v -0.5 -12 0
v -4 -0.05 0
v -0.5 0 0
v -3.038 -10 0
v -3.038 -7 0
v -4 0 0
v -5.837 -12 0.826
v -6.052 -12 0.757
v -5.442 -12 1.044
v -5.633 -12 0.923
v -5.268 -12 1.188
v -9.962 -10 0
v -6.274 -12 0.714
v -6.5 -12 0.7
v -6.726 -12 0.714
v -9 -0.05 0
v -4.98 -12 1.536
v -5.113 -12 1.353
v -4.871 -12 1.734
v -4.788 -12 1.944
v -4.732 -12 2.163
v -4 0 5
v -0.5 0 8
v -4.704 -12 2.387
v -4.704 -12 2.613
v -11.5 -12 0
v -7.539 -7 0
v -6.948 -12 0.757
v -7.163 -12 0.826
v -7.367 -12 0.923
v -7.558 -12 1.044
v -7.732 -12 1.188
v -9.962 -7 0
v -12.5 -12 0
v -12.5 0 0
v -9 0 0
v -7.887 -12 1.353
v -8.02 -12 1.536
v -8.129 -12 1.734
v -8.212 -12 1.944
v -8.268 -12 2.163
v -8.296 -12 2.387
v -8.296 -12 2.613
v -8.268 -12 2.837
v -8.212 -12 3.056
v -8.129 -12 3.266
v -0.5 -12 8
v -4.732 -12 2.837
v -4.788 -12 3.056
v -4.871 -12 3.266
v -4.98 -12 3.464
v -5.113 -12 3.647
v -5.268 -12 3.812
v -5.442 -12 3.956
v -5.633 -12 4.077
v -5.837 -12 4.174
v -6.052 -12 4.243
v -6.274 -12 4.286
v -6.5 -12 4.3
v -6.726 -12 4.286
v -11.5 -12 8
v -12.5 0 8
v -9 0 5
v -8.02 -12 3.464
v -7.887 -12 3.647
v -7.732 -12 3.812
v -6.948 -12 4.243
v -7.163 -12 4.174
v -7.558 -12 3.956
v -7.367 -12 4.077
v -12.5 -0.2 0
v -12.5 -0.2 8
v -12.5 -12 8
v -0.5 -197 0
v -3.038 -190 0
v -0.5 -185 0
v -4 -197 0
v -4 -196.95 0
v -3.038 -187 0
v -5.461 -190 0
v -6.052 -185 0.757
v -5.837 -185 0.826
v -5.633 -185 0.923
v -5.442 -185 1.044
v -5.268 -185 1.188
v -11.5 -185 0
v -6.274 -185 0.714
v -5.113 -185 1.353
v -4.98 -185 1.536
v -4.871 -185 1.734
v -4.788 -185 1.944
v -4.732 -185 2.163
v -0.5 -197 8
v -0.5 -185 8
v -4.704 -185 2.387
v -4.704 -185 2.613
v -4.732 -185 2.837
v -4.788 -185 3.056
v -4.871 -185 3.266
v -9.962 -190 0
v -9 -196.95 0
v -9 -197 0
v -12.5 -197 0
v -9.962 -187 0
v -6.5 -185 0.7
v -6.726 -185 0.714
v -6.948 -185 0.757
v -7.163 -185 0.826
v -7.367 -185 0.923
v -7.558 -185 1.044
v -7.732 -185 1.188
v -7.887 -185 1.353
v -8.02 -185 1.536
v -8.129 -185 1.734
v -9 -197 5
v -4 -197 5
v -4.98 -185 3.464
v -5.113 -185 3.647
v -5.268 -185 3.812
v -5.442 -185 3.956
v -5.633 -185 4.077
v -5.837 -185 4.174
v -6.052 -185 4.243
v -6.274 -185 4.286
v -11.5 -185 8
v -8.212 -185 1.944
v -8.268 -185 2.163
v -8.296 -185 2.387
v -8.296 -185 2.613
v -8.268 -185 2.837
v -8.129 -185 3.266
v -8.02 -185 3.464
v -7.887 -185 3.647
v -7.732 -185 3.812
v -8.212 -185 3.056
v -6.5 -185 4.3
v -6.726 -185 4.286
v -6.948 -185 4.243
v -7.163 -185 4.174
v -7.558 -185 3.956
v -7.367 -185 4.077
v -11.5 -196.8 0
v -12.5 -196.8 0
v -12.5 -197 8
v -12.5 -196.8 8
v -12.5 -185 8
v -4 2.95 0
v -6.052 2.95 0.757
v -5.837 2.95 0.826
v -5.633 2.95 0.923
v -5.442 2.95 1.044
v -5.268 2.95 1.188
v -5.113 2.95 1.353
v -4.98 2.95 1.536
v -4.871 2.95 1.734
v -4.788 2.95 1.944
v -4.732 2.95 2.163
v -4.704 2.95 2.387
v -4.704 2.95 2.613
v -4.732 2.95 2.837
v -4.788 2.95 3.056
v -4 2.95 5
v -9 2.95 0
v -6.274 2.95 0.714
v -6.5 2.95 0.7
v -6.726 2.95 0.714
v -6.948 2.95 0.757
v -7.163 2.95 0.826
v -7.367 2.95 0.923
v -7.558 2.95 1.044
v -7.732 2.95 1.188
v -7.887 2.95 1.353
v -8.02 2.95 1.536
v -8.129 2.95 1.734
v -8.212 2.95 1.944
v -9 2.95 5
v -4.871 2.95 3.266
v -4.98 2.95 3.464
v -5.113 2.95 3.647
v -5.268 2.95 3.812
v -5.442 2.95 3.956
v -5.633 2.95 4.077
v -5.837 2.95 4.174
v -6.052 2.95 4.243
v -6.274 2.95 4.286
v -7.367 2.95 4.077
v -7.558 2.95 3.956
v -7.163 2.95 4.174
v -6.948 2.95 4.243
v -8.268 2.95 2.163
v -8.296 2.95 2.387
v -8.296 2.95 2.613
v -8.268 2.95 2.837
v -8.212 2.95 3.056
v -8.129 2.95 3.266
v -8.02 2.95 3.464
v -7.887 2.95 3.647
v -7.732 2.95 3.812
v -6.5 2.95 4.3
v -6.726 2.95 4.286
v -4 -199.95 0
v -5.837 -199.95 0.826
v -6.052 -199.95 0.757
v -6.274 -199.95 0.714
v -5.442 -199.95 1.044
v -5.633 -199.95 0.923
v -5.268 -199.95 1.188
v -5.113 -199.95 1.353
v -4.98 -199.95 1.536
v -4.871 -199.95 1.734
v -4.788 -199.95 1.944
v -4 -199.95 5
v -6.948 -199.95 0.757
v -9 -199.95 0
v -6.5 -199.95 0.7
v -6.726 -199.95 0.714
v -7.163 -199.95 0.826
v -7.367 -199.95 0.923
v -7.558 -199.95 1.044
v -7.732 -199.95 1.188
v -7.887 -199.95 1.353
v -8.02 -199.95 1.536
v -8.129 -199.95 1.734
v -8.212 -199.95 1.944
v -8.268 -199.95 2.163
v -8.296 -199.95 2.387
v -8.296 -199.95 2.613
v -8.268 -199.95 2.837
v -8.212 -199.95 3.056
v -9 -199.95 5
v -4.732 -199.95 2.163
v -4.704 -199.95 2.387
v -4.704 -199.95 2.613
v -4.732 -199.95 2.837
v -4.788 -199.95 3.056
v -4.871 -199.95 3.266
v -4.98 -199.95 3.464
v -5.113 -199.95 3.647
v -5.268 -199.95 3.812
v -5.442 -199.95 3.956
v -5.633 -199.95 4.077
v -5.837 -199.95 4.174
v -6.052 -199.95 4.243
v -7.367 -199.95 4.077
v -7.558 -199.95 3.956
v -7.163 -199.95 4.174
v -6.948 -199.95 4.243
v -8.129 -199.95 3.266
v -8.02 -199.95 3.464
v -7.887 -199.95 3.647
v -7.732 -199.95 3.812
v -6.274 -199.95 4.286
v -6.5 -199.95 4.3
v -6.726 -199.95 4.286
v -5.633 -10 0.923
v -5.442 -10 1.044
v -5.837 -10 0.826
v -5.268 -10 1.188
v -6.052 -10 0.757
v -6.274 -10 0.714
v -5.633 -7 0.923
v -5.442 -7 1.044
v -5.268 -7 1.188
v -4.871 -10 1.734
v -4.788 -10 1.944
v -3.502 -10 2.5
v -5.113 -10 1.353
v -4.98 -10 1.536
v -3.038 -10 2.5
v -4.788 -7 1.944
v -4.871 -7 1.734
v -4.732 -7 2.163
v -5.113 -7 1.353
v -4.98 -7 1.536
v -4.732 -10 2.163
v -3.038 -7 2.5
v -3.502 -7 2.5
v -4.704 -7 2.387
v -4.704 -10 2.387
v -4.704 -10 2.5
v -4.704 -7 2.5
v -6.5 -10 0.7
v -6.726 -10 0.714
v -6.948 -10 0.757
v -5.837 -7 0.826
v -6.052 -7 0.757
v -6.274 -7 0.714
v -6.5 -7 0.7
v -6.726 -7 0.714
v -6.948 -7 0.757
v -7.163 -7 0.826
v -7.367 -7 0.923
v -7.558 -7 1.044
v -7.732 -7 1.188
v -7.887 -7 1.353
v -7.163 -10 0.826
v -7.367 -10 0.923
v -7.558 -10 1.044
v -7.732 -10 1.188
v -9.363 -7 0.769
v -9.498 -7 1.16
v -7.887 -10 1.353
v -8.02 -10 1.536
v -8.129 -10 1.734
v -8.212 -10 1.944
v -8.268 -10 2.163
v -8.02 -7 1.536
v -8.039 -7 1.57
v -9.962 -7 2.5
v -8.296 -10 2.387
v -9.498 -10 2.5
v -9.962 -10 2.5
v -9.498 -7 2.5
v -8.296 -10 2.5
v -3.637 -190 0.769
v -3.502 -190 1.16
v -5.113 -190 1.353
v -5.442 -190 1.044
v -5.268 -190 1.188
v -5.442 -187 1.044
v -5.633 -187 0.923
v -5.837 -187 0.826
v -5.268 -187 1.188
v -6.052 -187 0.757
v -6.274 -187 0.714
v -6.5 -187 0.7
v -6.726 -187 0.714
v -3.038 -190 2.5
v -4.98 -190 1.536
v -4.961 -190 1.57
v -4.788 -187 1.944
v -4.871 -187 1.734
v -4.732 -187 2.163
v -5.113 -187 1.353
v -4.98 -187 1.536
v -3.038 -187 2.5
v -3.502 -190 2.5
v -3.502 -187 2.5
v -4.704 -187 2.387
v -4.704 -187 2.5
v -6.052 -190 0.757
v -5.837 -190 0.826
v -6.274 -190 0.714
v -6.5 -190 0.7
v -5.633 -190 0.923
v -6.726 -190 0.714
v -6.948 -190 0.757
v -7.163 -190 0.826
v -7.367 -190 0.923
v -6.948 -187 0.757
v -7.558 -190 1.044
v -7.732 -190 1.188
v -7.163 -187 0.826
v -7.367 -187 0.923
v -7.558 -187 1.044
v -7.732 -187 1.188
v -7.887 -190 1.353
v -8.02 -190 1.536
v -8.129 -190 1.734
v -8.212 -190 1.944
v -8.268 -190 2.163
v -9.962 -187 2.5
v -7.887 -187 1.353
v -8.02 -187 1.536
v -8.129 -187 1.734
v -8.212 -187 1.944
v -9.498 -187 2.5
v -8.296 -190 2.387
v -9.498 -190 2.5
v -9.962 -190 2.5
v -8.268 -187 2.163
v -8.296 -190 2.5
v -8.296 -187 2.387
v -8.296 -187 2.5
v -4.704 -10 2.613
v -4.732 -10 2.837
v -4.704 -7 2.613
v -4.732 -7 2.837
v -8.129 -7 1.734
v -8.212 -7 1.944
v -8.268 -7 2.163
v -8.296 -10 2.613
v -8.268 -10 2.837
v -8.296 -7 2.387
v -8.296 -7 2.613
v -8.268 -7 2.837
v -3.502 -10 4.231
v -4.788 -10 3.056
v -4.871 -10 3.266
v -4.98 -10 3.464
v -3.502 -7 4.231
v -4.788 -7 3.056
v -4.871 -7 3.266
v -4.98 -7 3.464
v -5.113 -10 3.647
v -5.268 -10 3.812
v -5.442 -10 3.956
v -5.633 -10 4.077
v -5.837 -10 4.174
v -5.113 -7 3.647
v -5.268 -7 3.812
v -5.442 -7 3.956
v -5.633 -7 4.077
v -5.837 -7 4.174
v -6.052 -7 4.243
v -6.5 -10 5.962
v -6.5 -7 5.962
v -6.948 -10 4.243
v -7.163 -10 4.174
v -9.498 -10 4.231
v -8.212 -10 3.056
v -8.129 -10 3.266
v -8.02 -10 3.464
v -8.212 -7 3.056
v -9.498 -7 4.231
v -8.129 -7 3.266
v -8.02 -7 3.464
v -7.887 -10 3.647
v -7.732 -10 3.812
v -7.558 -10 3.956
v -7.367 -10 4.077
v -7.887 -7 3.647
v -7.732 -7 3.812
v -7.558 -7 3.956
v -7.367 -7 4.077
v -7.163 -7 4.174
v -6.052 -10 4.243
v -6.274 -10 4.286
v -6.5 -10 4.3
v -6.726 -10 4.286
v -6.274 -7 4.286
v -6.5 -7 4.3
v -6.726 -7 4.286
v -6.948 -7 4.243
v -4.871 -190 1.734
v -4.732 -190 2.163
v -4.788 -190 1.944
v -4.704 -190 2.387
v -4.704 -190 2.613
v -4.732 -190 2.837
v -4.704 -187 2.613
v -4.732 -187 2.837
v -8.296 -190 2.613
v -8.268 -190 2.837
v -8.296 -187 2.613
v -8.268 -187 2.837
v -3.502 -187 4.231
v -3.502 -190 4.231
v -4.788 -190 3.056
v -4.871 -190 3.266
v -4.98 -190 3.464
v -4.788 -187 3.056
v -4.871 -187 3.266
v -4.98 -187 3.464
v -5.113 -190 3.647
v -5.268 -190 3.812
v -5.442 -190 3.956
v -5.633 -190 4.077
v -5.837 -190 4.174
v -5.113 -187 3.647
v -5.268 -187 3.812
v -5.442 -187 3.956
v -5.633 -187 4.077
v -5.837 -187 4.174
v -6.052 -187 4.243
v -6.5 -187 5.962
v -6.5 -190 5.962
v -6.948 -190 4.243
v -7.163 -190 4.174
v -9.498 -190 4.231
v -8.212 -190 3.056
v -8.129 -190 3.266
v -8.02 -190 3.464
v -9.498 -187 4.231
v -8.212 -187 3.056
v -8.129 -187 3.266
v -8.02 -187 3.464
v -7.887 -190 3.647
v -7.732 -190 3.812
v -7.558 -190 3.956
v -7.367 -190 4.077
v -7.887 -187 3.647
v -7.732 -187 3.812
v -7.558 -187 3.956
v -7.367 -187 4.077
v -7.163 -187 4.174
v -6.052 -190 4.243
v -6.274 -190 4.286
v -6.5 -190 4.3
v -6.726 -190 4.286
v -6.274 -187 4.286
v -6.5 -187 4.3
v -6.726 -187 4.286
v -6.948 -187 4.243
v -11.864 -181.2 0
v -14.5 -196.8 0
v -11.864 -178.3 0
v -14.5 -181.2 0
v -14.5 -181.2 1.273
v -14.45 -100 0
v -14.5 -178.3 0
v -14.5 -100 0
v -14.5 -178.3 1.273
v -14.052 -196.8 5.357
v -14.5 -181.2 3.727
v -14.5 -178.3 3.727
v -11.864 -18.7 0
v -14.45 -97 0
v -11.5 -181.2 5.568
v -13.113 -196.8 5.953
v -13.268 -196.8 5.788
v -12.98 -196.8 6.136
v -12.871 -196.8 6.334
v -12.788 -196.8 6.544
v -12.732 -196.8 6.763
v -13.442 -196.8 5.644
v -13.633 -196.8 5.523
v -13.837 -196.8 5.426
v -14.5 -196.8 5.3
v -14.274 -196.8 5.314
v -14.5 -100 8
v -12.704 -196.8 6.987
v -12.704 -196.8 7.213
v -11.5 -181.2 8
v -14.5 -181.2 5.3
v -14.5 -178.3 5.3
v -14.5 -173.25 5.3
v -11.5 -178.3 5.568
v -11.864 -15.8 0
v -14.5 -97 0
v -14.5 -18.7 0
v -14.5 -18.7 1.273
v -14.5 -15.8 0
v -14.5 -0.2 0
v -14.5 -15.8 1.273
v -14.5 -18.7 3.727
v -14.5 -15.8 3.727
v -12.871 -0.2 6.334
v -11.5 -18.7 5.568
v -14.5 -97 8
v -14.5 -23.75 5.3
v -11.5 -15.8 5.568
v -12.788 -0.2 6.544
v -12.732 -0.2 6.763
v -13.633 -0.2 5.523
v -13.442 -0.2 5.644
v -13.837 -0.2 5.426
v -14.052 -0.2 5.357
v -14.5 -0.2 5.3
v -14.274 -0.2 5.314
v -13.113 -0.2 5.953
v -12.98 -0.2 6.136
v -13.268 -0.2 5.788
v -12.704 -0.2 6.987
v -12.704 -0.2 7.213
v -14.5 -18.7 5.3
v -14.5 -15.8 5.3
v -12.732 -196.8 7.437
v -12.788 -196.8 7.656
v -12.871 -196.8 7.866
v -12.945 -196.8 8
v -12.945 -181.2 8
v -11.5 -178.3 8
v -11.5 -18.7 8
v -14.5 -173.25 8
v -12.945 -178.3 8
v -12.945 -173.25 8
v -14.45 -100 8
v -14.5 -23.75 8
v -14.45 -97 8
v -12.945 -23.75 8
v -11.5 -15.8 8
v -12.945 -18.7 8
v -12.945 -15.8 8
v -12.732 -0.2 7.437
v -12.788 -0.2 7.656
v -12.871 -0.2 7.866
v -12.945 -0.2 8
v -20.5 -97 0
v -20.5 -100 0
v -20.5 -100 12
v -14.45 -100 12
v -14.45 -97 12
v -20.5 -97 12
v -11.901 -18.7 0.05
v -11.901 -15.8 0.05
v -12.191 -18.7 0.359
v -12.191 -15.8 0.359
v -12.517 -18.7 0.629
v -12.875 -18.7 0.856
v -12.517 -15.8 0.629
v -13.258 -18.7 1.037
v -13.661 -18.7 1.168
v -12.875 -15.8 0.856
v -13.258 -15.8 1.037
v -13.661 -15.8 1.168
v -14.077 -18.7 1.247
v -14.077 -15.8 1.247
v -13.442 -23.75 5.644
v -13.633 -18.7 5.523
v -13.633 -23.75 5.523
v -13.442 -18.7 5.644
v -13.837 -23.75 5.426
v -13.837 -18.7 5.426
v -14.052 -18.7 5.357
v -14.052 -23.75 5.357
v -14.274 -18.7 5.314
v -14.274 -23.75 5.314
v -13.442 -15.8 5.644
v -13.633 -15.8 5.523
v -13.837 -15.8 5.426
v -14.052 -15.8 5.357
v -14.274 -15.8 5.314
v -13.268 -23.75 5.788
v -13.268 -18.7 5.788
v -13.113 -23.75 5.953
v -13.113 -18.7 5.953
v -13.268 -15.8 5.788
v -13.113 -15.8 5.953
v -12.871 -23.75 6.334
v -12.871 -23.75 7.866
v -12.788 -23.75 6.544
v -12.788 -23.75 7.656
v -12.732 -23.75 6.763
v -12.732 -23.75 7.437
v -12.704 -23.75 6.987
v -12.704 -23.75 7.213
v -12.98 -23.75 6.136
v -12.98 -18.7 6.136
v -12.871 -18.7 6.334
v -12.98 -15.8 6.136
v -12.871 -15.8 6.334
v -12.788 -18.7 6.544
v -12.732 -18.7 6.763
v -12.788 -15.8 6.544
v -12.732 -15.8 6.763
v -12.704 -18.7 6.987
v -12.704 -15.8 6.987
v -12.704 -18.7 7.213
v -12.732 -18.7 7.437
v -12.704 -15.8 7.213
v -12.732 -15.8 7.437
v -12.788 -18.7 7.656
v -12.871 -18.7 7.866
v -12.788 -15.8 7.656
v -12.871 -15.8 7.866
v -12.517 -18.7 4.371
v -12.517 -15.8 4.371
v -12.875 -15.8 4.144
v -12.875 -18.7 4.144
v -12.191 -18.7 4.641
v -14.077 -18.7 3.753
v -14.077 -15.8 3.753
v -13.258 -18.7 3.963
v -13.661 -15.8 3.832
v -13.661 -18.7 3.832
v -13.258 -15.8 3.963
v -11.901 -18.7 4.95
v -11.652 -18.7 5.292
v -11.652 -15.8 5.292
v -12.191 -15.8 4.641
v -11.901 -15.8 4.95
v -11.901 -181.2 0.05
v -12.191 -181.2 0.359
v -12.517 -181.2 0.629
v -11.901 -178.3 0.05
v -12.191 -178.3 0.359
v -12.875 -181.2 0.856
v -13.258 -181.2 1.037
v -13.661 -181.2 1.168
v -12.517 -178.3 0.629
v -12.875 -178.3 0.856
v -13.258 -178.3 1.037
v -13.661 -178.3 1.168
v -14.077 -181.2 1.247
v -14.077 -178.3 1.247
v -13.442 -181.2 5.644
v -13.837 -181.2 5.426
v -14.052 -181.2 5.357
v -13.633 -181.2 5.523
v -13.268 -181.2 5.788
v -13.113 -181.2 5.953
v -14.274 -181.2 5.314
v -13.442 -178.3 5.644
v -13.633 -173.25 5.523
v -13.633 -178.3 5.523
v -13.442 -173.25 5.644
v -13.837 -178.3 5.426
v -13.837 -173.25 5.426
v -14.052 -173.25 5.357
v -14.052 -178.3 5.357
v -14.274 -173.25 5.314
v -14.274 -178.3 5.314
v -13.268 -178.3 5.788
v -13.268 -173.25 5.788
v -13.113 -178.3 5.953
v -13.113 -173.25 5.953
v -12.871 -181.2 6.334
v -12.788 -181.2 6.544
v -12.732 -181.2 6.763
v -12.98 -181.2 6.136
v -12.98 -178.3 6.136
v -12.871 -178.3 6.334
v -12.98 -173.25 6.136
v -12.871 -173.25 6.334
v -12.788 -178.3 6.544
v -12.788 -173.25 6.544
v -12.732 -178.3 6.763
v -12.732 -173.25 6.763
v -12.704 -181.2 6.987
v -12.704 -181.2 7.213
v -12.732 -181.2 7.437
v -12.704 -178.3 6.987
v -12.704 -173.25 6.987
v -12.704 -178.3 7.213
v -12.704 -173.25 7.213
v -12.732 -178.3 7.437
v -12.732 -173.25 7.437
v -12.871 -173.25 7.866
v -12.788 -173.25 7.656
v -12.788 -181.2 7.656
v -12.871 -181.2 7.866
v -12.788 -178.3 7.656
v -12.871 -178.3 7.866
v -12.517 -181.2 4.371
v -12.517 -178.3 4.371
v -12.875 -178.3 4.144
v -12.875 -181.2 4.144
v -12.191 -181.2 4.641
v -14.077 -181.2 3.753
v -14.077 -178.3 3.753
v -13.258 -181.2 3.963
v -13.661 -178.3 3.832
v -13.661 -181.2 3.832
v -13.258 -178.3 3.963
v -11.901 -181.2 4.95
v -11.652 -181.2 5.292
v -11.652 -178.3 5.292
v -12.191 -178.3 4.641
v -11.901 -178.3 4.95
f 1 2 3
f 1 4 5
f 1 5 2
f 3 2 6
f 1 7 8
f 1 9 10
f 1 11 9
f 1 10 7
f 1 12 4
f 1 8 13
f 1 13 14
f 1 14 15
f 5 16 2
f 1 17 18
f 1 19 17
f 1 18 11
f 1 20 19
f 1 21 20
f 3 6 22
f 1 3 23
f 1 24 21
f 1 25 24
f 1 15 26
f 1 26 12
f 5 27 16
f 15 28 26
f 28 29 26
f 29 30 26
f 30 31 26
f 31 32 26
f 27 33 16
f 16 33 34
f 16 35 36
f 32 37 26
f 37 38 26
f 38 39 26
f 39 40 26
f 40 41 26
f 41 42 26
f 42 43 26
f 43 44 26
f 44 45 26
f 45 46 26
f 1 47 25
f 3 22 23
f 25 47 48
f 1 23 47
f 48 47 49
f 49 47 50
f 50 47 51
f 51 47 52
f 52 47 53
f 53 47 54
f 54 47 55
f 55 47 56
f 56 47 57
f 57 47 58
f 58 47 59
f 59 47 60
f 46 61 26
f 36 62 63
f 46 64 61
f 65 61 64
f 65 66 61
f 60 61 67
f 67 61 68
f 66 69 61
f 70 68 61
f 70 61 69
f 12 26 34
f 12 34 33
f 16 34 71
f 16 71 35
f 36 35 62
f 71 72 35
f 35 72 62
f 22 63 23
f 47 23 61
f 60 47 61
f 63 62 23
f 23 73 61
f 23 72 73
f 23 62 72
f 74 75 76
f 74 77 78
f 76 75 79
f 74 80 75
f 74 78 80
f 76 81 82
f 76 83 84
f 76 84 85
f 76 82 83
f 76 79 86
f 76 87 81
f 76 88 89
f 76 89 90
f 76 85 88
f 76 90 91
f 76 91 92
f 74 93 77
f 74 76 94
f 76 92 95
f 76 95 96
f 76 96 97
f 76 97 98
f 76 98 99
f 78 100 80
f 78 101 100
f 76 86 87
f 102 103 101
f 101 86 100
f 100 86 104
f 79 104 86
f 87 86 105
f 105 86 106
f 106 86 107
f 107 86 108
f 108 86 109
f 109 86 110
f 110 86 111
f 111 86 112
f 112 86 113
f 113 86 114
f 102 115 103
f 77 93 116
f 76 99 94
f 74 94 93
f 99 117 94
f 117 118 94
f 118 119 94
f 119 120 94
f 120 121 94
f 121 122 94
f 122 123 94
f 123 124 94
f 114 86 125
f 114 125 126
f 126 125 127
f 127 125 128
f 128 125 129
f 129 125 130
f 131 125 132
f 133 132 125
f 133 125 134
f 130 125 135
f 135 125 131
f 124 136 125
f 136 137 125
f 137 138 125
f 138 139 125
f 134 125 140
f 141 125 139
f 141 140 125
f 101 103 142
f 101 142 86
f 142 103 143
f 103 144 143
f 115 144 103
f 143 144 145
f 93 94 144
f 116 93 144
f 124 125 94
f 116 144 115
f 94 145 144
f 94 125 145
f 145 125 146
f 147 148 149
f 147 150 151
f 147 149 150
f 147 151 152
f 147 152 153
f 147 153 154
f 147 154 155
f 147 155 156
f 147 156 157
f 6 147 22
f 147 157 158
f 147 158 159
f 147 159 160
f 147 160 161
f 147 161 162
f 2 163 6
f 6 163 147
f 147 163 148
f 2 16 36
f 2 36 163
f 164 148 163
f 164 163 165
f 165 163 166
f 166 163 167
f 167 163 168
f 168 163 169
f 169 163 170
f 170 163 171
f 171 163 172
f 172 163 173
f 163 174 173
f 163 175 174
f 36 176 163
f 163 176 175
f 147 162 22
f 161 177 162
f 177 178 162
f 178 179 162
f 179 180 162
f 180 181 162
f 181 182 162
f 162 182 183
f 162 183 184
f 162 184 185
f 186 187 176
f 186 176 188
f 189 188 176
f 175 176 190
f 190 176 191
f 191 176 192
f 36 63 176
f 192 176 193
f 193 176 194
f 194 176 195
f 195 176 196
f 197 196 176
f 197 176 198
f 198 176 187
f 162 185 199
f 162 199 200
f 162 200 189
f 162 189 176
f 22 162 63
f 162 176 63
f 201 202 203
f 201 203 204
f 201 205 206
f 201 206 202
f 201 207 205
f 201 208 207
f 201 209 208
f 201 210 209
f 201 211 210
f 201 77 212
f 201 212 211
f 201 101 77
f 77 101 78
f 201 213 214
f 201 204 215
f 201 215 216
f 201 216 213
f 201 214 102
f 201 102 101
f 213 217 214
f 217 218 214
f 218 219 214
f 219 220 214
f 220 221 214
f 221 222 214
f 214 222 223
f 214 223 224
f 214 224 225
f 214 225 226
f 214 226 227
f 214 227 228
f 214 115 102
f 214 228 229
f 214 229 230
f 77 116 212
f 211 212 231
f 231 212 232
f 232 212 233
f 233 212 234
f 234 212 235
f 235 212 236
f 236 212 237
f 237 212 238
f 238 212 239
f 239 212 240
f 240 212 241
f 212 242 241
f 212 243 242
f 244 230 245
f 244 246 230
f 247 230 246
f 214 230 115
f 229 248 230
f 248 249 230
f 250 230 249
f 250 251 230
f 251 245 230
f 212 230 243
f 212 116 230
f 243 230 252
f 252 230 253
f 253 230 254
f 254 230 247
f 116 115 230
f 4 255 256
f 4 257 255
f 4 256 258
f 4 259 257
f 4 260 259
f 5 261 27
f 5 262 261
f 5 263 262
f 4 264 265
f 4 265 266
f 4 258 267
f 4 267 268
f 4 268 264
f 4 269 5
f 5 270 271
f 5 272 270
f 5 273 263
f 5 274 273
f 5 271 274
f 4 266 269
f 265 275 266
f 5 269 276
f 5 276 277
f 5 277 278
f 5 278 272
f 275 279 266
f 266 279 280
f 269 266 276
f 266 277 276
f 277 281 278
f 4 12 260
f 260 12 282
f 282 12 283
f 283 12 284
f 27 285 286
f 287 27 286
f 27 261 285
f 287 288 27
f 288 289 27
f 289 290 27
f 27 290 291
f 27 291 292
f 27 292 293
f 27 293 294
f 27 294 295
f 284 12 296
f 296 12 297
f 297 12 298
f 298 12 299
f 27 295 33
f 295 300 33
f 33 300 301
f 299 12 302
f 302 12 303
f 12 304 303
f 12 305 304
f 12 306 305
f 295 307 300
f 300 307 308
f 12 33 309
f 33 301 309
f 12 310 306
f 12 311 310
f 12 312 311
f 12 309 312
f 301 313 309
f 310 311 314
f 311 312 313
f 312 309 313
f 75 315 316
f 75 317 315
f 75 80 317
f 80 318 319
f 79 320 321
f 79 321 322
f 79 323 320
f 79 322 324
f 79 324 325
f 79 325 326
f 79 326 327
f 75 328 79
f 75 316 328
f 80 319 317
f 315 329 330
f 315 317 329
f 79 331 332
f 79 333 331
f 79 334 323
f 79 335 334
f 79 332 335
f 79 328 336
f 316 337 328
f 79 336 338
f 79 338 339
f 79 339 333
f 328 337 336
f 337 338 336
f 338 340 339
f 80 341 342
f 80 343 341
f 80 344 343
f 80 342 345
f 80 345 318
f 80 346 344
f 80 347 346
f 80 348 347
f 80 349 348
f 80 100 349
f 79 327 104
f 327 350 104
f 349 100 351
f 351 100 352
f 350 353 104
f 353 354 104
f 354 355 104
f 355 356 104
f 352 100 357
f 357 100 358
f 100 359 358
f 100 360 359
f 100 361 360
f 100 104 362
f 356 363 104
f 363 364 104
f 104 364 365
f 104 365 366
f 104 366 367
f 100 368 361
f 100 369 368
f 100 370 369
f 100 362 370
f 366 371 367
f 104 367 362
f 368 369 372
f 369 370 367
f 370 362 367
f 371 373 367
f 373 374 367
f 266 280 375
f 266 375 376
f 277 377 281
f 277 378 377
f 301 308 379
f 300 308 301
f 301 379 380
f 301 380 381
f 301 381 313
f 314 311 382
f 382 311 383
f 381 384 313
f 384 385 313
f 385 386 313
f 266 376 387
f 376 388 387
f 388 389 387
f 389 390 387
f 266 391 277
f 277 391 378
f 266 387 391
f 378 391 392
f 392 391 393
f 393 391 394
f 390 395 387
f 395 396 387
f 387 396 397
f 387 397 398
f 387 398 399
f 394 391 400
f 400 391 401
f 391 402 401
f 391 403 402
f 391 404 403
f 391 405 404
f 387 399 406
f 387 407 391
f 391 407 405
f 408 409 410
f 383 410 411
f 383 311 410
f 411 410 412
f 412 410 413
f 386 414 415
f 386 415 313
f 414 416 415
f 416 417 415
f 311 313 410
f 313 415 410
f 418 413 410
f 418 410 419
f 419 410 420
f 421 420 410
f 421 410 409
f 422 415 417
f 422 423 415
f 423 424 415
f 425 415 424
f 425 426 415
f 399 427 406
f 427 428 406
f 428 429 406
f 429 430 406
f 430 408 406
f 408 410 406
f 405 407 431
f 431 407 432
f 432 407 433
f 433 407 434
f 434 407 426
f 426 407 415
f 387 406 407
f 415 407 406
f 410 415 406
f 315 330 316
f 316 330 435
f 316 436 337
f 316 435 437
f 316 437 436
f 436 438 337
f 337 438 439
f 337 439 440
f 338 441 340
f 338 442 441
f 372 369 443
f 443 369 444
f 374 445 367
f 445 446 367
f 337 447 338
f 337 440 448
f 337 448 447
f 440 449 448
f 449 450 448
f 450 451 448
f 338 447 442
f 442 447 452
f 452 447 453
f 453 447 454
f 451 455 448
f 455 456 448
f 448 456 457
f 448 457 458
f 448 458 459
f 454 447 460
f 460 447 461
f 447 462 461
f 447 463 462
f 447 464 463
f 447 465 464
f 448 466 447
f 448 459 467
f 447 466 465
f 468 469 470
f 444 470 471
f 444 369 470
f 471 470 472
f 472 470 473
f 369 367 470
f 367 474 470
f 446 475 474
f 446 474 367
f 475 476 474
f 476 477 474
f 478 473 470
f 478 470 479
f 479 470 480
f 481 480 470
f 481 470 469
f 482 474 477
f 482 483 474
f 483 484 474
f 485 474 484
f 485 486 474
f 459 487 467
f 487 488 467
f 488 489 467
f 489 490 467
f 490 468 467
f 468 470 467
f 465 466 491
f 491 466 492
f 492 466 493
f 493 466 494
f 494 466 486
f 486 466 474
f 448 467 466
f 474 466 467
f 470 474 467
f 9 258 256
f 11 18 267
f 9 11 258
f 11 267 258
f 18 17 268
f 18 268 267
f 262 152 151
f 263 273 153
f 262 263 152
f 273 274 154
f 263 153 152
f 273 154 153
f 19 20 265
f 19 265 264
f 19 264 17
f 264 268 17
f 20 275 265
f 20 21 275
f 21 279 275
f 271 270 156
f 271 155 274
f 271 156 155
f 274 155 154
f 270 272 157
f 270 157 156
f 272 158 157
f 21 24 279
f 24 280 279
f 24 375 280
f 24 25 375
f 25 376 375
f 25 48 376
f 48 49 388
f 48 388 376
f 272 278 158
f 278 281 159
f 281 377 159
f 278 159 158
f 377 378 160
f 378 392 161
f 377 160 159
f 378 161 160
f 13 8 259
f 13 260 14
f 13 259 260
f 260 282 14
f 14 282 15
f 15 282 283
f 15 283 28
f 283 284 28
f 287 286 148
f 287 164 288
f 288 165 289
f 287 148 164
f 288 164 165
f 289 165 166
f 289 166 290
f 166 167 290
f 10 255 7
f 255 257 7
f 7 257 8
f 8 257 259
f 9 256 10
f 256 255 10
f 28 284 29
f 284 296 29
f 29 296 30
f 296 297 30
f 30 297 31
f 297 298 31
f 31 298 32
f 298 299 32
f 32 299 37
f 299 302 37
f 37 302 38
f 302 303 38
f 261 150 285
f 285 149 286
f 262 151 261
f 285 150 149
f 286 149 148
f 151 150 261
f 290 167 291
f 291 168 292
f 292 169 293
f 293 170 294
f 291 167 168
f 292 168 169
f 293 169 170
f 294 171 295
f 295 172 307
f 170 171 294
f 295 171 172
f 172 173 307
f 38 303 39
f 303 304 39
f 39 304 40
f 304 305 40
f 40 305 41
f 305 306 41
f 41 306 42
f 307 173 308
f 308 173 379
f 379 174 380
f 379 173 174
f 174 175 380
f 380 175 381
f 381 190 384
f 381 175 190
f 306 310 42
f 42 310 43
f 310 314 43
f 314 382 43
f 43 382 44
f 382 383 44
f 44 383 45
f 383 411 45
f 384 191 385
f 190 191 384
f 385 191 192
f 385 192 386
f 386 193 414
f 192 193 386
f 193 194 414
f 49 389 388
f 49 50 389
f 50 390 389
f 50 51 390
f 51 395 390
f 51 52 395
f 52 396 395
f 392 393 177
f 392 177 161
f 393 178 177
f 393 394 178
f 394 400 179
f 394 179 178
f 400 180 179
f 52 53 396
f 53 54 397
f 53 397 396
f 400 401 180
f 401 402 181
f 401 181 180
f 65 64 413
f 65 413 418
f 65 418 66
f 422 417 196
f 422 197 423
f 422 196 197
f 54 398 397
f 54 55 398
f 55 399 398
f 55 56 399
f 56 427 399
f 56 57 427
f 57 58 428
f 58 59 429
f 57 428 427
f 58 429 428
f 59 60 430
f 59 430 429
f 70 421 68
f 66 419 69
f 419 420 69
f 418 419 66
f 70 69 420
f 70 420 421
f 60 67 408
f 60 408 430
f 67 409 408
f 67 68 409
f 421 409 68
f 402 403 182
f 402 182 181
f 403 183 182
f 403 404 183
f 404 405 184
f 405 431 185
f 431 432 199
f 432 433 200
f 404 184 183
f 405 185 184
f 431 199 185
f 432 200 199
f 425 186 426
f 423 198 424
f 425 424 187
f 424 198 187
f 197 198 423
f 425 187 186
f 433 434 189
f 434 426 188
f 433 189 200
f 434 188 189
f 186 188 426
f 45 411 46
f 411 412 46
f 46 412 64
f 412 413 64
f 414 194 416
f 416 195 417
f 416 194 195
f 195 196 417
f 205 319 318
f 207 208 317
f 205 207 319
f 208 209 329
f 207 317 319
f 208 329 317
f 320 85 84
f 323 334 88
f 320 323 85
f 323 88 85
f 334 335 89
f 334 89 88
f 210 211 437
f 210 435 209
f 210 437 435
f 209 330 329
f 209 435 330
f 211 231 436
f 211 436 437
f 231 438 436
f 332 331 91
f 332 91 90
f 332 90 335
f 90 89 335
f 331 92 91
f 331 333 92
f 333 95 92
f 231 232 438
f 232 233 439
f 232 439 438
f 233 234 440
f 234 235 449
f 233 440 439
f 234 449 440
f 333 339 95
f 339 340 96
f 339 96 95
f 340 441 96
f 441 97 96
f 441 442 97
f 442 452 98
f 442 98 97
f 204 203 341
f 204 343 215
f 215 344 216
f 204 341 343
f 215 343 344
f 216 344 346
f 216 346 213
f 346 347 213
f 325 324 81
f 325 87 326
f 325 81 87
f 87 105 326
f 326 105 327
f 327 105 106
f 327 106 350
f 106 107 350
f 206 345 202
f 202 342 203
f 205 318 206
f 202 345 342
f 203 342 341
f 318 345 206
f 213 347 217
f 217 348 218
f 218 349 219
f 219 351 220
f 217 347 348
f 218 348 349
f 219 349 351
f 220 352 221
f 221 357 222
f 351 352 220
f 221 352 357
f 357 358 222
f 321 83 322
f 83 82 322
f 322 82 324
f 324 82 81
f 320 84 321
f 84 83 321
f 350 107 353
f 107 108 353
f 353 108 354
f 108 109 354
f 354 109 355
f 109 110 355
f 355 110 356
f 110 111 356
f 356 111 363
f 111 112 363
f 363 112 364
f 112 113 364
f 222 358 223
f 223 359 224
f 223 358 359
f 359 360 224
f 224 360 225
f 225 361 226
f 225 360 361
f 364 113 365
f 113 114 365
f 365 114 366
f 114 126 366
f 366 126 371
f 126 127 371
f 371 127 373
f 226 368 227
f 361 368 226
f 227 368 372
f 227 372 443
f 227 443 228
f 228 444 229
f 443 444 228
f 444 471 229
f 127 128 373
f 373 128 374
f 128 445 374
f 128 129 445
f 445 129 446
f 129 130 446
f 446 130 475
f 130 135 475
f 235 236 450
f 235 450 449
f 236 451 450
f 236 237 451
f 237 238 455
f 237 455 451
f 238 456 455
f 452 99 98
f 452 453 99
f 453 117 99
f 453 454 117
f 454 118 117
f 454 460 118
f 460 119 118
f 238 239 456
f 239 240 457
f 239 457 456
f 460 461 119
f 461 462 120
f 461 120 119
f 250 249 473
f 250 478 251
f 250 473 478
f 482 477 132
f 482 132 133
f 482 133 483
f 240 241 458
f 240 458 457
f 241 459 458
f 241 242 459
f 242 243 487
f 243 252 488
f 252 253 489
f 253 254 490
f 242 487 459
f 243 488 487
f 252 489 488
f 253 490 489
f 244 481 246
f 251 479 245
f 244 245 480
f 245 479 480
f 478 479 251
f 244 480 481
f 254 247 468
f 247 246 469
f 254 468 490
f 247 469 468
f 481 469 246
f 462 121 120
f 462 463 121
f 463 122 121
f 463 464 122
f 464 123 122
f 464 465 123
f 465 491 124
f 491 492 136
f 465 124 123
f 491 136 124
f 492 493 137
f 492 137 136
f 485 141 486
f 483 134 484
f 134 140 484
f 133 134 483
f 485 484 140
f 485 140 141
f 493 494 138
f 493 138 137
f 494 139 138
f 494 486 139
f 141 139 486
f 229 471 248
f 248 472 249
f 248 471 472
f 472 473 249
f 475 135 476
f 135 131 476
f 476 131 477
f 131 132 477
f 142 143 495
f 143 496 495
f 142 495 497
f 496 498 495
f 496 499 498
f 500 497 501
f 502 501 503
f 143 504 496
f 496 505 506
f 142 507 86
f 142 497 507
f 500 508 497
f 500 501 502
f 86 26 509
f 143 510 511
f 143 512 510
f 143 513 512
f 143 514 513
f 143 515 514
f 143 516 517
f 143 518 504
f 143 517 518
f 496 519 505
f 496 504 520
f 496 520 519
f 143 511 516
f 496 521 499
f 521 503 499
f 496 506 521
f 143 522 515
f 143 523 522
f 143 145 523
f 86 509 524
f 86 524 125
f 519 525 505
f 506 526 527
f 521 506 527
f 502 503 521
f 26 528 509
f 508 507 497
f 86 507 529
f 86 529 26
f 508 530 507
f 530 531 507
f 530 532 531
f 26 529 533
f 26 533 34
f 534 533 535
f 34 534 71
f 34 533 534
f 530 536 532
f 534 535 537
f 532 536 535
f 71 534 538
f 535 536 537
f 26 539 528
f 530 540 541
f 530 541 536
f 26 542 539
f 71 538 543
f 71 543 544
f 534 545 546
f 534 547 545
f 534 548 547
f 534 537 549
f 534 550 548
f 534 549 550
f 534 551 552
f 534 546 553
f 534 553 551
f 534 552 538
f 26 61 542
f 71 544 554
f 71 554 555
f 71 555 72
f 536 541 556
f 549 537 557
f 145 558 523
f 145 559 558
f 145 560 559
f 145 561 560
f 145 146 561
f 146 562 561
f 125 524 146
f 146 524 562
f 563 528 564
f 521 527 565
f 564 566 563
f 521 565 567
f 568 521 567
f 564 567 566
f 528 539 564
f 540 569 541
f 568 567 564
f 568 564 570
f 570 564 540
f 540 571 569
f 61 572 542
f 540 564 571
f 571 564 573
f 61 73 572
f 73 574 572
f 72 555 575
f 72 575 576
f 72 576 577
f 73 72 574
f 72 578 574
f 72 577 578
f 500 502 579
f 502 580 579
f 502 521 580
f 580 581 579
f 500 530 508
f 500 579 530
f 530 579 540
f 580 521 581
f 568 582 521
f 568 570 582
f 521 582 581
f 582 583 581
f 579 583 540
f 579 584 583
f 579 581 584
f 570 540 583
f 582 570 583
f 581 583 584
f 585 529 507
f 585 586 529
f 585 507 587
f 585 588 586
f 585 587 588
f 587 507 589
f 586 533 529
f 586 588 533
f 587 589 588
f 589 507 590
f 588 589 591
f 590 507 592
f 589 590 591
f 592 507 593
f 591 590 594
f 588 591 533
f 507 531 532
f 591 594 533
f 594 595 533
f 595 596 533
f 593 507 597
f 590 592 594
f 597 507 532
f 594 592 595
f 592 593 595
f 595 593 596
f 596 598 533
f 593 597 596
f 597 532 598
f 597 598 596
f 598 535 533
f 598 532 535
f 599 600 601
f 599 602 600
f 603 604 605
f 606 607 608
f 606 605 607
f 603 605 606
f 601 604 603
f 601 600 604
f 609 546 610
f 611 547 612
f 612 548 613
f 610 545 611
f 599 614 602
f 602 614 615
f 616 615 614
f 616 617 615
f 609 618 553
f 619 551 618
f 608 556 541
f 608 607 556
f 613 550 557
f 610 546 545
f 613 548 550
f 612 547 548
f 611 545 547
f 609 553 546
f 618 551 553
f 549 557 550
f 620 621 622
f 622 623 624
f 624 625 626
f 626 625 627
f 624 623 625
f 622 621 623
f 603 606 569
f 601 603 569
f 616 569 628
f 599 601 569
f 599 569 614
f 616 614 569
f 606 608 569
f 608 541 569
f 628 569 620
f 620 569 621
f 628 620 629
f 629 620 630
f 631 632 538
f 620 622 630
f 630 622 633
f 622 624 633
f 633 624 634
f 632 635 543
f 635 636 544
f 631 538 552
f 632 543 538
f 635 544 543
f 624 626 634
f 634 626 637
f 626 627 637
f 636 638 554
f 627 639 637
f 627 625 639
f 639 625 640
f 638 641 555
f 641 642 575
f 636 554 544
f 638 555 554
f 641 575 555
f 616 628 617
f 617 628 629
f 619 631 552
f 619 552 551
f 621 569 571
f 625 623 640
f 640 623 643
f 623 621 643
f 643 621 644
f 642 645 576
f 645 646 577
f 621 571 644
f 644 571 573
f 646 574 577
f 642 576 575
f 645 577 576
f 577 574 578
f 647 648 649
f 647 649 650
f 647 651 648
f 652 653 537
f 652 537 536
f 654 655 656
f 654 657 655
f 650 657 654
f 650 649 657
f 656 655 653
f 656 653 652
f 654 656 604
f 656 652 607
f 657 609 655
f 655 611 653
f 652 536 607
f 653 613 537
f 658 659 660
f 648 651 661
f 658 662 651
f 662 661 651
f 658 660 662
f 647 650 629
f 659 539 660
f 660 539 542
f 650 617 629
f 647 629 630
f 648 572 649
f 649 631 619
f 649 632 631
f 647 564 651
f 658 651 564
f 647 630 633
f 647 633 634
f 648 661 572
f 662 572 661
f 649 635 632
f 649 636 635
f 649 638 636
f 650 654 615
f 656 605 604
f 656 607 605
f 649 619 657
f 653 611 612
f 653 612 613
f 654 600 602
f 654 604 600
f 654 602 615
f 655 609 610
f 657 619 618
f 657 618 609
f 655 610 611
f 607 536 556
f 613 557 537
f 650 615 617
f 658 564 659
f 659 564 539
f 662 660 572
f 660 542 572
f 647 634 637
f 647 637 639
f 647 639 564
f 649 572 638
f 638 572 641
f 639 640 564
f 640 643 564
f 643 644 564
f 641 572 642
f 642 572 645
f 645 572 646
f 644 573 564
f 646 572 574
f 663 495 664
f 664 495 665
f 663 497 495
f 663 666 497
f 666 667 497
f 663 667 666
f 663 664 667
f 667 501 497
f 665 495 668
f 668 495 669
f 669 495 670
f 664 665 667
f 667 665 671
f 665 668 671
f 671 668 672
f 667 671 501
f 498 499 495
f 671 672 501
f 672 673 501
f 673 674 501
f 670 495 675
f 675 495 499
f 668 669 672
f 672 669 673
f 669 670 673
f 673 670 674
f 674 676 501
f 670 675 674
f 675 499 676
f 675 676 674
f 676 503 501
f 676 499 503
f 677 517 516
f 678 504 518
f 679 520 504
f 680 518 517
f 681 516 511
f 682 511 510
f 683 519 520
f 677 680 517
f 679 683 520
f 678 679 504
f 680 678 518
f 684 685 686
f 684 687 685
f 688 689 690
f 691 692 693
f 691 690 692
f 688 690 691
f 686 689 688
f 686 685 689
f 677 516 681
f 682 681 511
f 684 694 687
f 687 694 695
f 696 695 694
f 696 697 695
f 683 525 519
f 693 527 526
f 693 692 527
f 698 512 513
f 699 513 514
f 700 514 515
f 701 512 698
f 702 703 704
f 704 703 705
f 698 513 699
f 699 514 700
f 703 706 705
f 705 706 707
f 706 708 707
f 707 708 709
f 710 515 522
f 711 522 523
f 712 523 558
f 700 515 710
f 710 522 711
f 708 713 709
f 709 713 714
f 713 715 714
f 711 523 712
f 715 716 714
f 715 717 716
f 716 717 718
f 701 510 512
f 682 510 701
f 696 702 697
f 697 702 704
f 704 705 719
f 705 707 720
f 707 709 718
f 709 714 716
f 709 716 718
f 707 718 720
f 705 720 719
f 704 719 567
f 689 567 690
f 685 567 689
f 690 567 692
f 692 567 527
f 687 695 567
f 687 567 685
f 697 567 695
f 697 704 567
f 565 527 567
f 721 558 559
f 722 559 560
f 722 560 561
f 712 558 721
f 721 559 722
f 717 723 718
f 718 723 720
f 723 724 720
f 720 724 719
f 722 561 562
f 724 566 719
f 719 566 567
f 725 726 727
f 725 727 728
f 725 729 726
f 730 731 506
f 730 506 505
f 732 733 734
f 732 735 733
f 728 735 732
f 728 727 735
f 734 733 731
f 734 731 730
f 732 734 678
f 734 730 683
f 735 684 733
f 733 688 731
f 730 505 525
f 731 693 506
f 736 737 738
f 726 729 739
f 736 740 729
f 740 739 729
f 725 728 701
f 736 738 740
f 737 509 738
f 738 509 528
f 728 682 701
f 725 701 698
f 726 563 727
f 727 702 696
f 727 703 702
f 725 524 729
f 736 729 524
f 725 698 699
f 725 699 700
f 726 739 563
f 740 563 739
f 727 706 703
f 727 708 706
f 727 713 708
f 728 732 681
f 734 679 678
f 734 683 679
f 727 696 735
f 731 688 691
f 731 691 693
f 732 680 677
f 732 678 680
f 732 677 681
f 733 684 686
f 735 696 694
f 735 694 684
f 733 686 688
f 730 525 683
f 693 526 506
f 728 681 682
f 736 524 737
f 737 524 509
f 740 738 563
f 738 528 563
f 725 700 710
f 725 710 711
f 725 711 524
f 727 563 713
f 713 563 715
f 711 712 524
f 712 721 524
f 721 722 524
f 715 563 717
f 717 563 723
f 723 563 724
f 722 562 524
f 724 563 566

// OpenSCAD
$fn = 50;

difference() {
	union() {
		translate(v = [0, 0, 0]) {
			rotate(a = [0, 0, 0]) {
				difference() {
					union() {
						translate(v = [0, 0, 2.5]) {
							rotate(a = [0, -90, 0]) {
								difference() {
									union() {
										translate(v = [0, 0, 0]) {
											rotate(a = [0, 0, 0]) {
												difference() {
													union() {
														translate(v = [-2.5, -12.0, 0.5]) {
															cube(size = [8.0, 12.0, 12.0]);
														}
														translate(v = [-2.5, -0.05, 4.0]) {
															cube(size = [5.0, 3.0, 5.0]);
														}
													}
													union() {
														translate(v = [0, -7.0, 6.5]) {
															rotate(a = [90, 0, 0]) {
																difference() {
																	union() {
																		translate(v = [-20.0, -3.4619999999999997, 0]) {
																			cube(size = [20, 6.9239999999999995, 3]);
																		}
																		linear_extrude(height = 3) {
																			polygon(points = [[3.4619999999999997, 0.0], [1.7310000000000003, 2.9981799479017264], [-1.7309999999999992, 2.9981799479017264], [-3.4619999999999997, 4.2397272186481365e-16], [-1.7310000000000014, -2.998179947901726], [1.7309999999999977, -2.9981799479017277]]);
																		}
																	}
																	union();
																}
															}
														}
														translate(v = [0, 3.0500000000000003, 6.5]) {
															rotate(a = [90, 0, 0]) {
																cylinder(h = 22.95, r = 1.8);
															}
														}
													}
												}
											}
										}
										translate(v = [0, -197.0, 13.0]) {
											rotate(a = [180, 0, 0]) {
												difference() {
													union() {
														translate(v = [-2.5, -12.0, 0.5]) {
															cube(size = [8.0, 12.0, 12.0]);
														}
														translate(v = [-2.5, -0.05, 4.0]) {
															cube(size = [5.0, 3.0, 5.0]);
														}
													}
													union() {
														translate(v = [0, -7.0, 6.5]) {
															rotate(a = [90, 0, 0]) {
																difference() {
																	union() {
																		translate(v = [-20.0, -3.4619999999999997, 0]) {
																			cube(size = [20, 6.9239999999999995, 3]);
																		}
																		linear_extrude(height = 3) {
																			polygon(points = [[3.4619999999999997, 0.0], [1.7310000000000003, 2.9981799479017264], [-1.7309999999999992, 2.9981799479017264], [-3.4619999999999997, 4.2397272186481365e-16], [-1.7310000000000014, -2.998179947901726], [1.7309999999999977, -2.9981799479017277]]);
																		}
																	}
																	union();
																}
															}
														}
														translate(v = [0, 3.0500000000000003, 6.5]) {
															rotate(a = [90, 0, 0]) {
																cylinder(h = 22.95, r = 1.8);
															}
														}
													}
												}
											}
										}
										translate(v = [-2.5, -196.8, 11.5]) {
											cube(size = [8.0, 196.6, 3.0]);
										}
										translate(v = [-2.5, -100.0, 14.45]) {
											cube(size = [12.0, 3.0, 6.05]);
										}
									}
									union() {
										translate(v = [-4.600000000499989, 0.1, 14.5]) {
											rotate(a = [90, 0, 0]) {
												cylinder(h = 23.85, r = 1.8);
											}
										}
										translate(v = [-4.600000000499989, -15.8, 14.5]) {
											rotate(a = [90, 0, 0]) {
												cylinder(h = 2.9, r = 3.3735);
											}
										}
										translate(v = [4.600000000499989, 0.1, 14.5]) {
											rotate(a = [90, 0, 0]) {
												cylinder(h = 23.85, r = 1.8);
											}
										}
										translate(v = [4.600000000499989, -15.8, 14.5]) {
											rotate(a = [90, 0, 0]) {
												cylinder(h = 2.9, r = 3.3735);
											}
										}
										translate(v = [-4.600000000499989, -197.1, 14.5]) {
											rotate(a = [-90, 0, 0]) {
												cylinder(h = 23.85, r = 1.8);
											}
										}
										translate(v = [-4.600000000499989, -181.2, 14.5]) {
											rotate(a = [-90, 0, 0]) {
												cylinder(h = 2.9, r = 3.3735);
											}
										}
										translate(v = [4.600000000499989, -197.1, 14.5]) {
											rotate(a = [-90, 0, 0]) {
												cylinder(h = 23.85, r = 1.8);
											}
										}
										translate(v = [4.600000000499989, -181.2, 14.5]) {
											rotate(a = [-90, 0, 0]) {
												cylinder(h = 2.9, r = 3.3735);
											}
										}
									}
								}
							}
						}
					}
					union();
				}
			}
		}
	}
	union();
}
